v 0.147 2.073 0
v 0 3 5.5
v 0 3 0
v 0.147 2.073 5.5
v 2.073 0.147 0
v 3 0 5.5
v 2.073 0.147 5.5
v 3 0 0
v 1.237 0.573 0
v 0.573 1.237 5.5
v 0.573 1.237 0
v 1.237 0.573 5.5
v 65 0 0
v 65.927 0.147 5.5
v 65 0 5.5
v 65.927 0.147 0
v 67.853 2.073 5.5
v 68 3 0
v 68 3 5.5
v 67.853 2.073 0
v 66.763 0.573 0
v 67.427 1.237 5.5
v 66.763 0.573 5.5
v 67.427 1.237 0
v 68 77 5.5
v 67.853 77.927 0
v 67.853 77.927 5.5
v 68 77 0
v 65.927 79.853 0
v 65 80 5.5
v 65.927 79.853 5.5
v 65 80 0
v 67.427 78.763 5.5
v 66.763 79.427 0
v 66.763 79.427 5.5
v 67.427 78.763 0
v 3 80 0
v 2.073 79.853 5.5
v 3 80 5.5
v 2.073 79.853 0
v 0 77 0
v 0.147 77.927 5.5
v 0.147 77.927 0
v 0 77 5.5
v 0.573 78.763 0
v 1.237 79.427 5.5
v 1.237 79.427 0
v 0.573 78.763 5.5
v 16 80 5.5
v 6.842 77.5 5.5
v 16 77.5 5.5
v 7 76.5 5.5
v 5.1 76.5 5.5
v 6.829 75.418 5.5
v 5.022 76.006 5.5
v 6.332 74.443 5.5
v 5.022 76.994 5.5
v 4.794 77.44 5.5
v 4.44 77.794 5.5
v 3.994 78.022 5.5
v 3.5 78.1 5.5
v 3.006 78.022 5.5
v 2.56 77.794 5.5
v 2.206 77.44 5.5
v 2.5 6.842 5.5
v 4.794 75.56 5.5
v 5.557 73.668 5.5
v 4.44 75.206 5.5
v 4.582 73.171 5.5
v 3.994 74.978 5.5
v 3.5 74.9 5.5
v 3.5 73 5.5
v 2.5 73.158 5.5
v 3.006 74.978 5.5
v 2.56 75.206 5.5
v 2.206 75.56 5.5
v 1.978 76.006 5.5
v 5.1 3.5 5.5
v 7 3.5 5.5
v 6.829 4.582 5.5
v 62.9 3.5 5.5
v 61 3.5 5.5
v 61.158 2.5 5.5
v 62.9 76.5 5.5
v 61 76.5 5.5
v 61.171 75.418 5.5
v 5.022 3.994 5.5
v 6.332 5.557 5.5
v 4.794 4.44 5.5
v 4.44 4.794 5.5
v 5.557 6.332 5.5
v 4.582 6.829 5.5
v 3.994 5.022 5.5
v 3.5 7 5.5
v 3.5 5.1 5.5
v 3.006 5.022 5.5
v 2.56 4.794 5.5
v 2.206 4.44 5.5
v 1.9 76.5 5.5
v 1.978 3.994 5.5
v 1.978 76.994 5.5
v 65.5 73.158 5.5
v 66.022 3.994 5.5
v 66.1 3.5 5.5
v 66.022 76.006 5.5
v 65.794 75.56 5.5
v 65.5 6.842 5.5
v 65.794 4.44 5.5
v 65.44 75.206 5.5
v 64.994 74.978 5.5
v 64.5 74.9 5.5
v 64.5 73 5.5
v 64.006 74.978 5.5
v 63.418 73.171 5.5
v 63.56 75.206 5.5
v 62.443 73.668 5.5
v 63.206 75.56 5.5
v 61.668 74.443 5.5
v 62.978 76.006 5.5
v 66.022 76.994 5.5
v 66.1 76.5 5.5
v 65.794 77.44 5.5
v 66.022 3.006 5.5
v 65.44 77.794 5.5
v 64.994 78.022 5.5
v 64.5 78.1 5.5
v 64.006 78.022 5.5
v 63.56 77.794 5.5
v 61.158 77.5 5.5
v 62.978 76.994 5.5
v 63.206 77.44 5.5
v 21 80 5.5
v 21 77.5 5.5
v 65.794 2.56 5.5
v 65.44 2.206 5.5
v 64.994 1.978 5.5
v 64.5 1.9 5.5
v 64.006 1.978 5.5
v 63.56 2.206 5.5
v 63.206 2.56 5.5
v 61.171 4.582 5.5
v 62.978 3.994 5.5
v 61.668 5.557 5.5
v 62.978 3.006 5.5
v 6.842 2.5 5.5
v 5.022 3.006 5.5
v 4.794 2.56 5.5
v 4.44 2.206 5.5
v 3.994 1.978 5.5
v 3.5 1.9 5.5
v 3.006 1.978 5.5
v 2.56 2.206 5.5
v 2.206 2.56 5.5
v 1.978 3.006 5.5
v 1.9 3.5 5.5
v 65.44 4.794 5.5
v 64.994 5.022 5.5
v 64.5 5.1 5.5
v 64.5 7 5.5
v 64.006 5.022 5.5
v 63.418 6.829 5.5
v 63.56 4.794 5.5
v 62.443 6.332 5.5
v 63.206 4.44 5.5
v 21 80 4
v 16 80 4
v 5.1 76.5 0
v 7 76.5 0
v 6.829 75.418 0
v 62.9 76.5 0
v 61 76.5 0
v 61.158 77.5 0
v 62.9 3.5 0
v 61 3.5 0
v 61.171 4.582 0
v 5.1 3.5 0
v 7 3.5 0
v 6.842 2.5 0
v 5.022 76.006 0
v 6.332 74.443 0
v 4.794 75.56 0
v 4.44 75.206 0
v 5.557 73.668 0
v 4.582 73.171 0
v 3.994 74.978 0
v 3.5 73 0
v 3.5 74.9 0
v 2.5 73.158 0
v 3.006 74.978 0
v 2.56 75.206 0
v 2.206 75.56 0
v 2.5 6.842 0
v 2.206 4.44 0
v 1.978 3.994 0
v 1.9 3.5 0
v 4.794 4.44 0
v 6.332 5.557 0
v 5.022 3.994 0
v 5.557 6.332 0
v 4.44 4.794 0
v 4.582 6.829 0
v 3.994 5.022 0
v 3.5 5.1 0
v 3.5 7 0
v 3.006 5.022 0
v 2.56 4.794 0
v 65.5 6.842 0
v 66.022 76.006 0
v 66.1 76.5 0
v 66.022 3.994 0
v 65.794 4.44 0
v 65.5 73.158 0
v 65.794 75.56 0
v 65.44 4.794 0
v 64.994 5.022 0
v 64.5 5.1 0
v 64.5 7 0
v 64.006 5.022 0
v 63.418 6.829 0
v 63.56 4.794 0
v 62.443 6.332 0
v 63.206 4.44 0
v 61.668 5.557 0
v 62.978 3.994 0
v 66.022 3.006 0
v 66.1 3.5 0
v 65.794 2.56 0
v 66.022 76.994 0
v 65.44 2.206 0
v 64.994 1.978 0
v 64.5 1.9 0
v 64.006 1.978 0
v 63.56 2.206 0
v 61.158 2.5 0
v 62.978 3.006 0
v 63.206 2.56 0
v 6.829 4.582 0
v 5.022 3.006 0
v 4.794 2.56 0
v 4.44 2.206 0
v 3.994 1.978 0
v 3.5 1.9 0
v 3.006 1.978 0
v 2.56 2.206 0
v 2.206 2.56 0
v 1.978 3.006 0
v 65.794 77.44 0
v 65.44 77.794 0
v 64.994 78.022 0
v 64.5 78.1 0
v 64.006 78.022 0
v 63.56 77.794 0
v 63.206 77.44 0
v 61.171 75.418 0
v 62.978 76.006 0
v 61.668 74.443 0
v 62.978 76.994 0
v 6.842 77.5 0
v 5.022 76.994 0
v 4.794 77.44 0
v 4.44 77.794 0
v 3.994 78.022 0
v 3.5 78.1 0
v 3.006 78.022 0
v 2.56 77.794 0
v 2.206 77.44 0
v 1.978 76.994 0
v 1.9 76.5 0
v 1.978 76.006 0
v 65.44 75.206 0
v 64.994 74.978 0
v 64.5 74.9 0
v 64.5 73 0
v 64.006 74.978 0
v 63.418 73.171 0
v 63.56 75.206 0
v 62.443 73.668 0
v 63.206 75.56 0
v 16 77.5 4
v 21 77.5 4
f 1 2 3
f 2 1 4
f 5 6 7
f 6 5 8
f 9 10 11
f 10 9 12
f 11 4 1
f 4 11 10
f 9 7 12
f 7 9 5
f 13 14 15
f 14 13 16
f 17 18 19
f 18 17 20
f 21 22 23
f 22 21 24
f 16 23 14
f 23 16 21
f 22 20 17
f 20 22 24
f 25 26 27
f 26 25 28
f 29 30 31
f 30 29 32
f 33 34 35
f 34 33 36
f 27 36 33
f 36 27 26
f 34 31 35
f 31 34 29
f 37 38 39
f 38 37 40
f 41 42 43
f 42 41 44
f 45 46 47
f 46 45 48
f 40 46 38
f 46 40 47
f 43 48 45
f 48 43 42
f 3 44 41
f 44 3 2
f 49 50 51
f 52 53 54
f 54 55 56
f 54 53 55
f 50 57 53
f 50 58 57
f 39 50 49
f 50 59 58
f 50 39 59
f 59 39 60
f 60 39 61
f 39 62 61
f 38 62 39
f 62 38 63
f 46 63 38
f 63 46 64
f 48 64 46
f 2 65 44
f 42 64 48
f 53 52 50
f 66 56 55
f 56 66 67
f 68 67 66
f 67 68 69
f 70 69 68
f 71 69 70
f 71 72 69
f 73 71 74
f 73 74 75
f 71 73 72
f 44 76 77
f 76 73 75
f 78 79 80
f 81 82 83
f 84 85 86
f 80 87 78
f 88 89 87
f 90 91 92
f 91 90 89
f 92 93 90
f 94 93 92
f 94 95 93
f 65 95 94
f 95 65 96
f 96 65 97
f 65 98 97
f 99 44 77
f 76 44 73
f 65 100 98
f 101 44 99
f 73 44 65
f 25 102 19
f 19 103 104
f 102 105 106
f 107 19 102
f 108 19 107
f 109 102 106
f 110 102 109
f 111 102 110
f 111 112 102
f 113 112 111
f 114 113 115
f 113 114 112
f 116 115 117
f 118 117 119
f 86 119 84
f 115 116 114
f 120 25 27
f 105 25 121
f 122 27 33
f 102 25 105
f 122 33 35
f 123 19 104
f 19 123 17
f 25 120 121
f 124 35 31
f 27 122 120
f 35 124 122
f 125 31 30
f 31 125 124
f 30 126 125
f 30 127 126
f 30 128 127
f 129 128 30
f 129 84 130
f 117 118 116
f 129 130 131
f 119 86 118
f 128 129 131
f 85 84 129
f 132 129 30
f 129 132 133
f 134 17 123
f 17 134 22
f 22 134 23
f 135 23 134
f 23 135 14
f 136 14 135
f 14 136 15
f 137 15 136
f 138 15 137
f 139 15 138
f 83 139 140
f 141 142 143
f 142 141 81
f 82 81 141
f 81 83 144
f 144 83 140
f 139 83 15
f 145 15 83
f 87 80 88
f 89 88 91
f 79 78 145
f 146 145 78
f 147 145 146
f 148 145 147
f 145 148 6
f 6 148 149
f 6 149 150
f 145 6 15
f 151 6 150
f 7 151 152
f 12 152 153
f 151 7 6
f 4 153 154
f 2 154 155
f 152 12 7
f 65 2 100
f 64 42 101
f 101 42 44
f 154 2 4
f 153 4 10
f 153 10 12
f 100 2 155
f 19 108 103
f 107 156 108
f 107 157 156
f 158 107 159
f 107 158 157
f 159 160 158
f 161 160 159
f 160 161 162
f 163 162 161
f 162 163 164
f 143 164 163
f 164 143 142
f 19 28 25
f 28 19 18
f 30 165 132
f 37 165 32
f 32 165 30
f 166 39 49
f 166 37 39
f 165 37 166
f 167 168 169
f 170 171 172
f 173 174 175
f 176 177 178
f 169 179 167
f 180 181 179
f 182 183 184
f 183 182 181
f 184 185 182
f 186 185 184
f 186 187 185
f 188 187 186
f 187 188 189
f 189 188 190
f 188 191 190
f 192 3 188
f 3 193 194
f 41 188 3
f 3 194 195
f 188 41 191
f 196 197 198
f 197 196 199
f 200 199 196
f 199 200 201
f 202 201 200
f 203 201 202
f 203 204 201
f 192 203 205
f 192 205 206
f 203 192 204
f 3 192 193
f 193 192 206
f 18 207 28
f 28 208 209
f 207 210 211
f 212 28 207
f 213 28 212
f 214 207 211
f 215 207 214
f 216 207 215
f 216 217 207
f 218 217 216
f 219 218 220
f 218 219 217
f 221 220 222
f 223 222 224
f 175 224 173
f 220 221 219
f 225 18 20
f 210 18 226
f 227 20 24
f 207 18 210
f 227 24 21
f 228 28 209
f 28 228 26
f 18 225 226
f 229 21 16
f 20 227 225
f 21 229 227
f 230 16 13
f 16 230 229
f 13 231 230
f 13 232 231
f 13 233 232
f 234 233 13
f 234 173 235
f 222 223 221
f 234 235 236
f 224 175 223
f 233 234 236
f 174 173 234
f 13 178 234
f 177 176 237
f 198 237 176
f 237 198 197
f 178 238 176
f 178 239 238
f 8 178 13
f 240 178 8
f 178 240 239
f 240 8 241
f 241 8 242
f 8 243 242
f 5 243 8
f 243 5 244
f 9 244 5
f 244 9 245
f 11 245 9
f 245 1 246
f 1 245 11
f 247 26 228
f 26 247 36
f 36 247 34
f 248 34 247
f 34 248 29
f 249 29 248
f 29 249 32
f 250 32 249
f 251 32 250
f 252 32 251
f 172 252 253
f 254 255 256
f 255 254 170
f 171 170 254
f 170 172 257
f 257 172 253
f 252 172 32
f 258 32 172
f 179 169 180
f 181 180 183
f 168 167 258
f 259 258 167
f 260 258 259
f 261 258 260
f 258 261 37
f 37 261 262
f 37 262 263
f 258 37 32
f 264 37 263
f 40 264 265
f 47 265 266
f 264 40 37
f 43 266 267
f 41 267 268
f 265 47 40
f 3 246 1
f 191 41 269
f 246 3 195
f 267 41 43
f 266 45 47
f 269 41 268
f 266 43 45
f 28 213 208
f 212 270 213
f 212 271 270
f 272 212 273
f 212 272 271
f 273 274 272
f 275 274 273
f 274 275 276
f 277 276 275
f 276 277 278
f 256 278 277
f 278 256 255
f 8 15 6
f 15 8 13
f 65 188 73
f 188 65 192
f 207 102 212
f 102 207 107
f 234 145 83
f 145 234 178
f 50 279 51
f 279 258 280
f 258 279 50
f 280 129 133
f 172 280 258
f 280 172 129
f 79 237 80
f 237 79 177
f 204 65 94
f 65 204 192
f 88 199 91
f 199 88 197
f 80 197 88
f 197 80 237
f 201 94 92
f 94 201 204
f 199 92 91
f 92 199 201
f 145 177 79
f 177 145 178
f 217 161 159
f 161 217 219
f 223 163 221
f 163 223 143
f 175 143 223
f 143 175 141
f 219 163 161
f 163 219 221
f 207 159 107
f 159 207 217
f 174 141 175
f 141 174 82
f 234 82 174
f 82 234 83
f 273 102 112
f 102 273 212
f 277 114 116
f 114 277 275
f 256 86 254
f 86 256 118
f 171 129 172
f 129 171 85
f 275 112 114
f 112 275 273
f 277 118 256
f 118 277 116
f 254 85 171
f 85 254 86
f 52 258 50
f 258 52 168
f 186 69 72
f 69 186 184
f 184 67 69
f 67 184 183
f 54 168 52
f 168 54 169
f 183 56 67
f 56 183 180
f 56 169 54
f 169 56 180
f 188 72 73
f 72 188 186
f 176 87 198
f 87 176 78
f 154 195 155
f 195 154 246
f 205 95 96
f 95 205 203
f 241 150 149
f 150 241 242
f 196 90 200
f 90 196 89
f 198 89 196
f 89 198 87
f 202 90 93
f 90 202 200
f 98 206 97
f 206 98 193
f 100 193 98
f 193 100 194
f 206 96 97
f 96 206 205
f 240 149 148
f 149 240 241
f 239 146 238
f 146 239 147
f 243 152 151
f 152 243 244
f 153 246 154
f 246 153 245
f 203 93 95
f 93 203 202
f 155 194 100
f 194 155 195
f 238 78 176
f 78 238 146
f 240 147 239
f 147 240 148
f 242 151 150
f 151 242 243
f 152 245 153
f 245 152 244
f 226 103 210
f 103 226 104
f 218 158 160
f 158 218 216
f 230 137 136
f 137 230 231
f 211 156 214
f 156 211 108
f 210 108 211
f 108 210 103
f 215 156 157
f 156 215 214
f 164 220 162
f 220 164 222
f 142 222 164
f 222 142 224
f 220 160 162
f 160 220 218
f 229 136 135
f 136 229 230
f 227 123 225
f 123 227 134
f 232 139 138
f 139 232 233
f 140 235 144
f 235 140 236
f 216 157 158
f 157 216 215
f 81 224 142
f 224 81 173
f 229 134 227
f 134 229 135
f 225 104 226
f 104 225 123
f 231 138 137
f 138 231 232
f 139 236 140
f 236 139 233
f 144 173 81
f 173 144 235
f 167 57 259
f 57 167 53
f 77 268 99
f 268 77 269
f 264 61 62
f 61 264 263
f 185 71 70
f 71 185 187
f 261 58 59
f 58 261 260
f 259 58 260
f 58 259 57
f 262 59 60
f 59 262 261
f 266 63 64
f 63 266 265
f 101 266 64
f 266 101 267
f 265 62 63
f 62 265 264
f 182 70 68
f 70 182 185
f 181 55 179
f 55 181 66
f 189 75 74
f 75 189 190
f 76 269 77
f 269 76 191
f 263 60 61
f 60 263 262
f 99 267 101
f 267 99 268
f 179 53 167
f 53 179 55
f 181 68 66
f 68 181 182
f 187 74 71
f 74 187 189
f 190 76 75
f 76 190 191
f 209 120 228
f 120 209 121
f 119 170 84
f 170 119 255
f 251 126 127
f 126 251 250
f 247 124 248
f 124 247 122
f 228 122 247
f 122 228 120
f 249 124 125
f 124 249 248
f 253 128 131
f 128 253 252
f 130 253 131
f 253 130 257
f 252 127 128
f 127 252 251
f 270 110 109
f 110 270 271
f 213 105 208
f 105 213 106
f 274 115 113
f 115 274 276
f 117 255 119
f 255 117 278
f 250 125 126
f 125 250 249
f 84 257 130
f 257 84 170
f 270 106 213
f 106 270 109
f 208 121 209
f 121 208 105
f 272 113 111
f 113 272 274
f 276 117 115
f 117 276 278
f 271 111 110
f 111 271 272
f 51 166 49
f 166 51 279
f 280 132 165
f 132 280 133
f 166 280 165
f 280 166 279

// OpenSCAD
// file: _params.scad
$fn = 20;

w = 68;
h = 80;

// tloušťka stěny
t = 2.5;

// od opačné strany než počátek
antenna_x = 18.5; 
antenna_w = 7;
antenna_h = 5;
// file: _parts.scad
use <_utils.scad>
include <_params.scad>

module panel() {
  
    
   difference() {
       
    union() {
      // plášť
     difference() {
        cube([w, h, 2]);
        
        union() {
          rounderer(0,0,180);  
          rounderer(w,0,-90);  
          rounderer(w,h,0);  
          rounderer(0,h,90);  
        }
        
        // ukos
        translate([0,0,1]){
          union() {
            trimmer(12, 0);
            translate([w,0,0]) trimmer(12, 90);
            translate([w,h,0]) trimmer(12, 180);
            translate([0,h,0]) trimmer(12, -90);
          }
        }
        
        // zapuštění pro šrouby
        translate([0,0,1]){
          translate([3.5,3.5,0]) cylinder(10, 3.5, 3.5, false);
          translate([w-3.5,3.5,0]) cylinder(10, 3.5, 3.5, false);
          translate([w-3.5,h-3.5,0]) cylinder(10, 3.5, 3.5, false);
          translate([3.5,h-3.5,0]) cylinder(10, 3.5, 3.5, false);
        }
      }
    }
    
    // vrtani
    translate([3.5,3.5,0]) cylinder(10, 3.2/2, 3.2/2, false);
    translate([w-3.5,3.5,0]) cylinder(10, 3.2/2, 3.2/2, false);
    translate([3.5,h-3.5,0]) cylinder(10, 3.2/2, 3.2/2, false);
    translate([w-3.5,h-3.5,0]) cylinder(10, 3.2/2, 3.2/2, false);
    
  }
  
}



module housing(d) {
  
   difference() {
       
    union() {
      // plášť
     difference() {
        cube([w, h, d]);
        
        union() {
          rounderer(0,0,180);  
          rounderer(w,0,-90);  
          rounderer(w,h,0);  
          rounderer(0,h,90);  
        }
        
        translate([t,t,0])
          cube([w-2*t, h-2*t, d]);
      }

      // domečky pro šrouby
      translate([3.5,3.5,0]) cylinder(d, 3.5, 3.5, false);
      translate([w-3.5,3.5,0]) cylinder(d, 3.5, 3.5, false);
      translate([w-3.5,h-3.5,0]) cylinder(d, 3.5, 3.5, false);
      translate([3.5,h-3.5,0]) cylinder(d, 3.5, 3.5, false);
    }
    
    // vrtani
    translate([3.5,3.5,0]) cylinder(d, 3.2/2, 3.2/2, false);
    translate([w-3.5,3.5,0]) cylinder(d, 3.2/2, 3.2/2, false);
    translate([3.5,h-3.5,0]) cylinder(d, 3.2/2, 3.2/2, false);
    translate([w-3.5,h-3.5,0]) cylinder(d, 3.2/2, 3.2/2, false);
    
  }

}
// file: _utils.scad
module rounderer(x, y, rot, r = 3) {
  //r = 3;
  l = 20;
  
  translate([x, y, 0]) {
    rotate([0, 0, rot]){
      translate([-r, -r, -l]) {
        difference() {
          cube([2*r, 2*r, 2*l]);
          cylinder(2*l, r, r, false);
        }
      }
    }
  }
}



module trimmer(a, rot) {
  
  l = 200;
  
  rotate([a,0, rot])
    translate([-l/2, -l/2, 0])
      cube([l, l, 10]);
  
  
}



trimmer(10, 90);
// main file
use <_utils.scad>
use <_parts.scad>

include <_params.scad>

bhl = 5.5;

module top_housing() {
  
  difference() {
    housing(bhl);
    
    translate([antenna_x, h, -antenna_h/2 + bhl + antenna_h - 1.5])
      cube([antenna_w, 10, antenna_h], true);
  }
}

top_housing();
